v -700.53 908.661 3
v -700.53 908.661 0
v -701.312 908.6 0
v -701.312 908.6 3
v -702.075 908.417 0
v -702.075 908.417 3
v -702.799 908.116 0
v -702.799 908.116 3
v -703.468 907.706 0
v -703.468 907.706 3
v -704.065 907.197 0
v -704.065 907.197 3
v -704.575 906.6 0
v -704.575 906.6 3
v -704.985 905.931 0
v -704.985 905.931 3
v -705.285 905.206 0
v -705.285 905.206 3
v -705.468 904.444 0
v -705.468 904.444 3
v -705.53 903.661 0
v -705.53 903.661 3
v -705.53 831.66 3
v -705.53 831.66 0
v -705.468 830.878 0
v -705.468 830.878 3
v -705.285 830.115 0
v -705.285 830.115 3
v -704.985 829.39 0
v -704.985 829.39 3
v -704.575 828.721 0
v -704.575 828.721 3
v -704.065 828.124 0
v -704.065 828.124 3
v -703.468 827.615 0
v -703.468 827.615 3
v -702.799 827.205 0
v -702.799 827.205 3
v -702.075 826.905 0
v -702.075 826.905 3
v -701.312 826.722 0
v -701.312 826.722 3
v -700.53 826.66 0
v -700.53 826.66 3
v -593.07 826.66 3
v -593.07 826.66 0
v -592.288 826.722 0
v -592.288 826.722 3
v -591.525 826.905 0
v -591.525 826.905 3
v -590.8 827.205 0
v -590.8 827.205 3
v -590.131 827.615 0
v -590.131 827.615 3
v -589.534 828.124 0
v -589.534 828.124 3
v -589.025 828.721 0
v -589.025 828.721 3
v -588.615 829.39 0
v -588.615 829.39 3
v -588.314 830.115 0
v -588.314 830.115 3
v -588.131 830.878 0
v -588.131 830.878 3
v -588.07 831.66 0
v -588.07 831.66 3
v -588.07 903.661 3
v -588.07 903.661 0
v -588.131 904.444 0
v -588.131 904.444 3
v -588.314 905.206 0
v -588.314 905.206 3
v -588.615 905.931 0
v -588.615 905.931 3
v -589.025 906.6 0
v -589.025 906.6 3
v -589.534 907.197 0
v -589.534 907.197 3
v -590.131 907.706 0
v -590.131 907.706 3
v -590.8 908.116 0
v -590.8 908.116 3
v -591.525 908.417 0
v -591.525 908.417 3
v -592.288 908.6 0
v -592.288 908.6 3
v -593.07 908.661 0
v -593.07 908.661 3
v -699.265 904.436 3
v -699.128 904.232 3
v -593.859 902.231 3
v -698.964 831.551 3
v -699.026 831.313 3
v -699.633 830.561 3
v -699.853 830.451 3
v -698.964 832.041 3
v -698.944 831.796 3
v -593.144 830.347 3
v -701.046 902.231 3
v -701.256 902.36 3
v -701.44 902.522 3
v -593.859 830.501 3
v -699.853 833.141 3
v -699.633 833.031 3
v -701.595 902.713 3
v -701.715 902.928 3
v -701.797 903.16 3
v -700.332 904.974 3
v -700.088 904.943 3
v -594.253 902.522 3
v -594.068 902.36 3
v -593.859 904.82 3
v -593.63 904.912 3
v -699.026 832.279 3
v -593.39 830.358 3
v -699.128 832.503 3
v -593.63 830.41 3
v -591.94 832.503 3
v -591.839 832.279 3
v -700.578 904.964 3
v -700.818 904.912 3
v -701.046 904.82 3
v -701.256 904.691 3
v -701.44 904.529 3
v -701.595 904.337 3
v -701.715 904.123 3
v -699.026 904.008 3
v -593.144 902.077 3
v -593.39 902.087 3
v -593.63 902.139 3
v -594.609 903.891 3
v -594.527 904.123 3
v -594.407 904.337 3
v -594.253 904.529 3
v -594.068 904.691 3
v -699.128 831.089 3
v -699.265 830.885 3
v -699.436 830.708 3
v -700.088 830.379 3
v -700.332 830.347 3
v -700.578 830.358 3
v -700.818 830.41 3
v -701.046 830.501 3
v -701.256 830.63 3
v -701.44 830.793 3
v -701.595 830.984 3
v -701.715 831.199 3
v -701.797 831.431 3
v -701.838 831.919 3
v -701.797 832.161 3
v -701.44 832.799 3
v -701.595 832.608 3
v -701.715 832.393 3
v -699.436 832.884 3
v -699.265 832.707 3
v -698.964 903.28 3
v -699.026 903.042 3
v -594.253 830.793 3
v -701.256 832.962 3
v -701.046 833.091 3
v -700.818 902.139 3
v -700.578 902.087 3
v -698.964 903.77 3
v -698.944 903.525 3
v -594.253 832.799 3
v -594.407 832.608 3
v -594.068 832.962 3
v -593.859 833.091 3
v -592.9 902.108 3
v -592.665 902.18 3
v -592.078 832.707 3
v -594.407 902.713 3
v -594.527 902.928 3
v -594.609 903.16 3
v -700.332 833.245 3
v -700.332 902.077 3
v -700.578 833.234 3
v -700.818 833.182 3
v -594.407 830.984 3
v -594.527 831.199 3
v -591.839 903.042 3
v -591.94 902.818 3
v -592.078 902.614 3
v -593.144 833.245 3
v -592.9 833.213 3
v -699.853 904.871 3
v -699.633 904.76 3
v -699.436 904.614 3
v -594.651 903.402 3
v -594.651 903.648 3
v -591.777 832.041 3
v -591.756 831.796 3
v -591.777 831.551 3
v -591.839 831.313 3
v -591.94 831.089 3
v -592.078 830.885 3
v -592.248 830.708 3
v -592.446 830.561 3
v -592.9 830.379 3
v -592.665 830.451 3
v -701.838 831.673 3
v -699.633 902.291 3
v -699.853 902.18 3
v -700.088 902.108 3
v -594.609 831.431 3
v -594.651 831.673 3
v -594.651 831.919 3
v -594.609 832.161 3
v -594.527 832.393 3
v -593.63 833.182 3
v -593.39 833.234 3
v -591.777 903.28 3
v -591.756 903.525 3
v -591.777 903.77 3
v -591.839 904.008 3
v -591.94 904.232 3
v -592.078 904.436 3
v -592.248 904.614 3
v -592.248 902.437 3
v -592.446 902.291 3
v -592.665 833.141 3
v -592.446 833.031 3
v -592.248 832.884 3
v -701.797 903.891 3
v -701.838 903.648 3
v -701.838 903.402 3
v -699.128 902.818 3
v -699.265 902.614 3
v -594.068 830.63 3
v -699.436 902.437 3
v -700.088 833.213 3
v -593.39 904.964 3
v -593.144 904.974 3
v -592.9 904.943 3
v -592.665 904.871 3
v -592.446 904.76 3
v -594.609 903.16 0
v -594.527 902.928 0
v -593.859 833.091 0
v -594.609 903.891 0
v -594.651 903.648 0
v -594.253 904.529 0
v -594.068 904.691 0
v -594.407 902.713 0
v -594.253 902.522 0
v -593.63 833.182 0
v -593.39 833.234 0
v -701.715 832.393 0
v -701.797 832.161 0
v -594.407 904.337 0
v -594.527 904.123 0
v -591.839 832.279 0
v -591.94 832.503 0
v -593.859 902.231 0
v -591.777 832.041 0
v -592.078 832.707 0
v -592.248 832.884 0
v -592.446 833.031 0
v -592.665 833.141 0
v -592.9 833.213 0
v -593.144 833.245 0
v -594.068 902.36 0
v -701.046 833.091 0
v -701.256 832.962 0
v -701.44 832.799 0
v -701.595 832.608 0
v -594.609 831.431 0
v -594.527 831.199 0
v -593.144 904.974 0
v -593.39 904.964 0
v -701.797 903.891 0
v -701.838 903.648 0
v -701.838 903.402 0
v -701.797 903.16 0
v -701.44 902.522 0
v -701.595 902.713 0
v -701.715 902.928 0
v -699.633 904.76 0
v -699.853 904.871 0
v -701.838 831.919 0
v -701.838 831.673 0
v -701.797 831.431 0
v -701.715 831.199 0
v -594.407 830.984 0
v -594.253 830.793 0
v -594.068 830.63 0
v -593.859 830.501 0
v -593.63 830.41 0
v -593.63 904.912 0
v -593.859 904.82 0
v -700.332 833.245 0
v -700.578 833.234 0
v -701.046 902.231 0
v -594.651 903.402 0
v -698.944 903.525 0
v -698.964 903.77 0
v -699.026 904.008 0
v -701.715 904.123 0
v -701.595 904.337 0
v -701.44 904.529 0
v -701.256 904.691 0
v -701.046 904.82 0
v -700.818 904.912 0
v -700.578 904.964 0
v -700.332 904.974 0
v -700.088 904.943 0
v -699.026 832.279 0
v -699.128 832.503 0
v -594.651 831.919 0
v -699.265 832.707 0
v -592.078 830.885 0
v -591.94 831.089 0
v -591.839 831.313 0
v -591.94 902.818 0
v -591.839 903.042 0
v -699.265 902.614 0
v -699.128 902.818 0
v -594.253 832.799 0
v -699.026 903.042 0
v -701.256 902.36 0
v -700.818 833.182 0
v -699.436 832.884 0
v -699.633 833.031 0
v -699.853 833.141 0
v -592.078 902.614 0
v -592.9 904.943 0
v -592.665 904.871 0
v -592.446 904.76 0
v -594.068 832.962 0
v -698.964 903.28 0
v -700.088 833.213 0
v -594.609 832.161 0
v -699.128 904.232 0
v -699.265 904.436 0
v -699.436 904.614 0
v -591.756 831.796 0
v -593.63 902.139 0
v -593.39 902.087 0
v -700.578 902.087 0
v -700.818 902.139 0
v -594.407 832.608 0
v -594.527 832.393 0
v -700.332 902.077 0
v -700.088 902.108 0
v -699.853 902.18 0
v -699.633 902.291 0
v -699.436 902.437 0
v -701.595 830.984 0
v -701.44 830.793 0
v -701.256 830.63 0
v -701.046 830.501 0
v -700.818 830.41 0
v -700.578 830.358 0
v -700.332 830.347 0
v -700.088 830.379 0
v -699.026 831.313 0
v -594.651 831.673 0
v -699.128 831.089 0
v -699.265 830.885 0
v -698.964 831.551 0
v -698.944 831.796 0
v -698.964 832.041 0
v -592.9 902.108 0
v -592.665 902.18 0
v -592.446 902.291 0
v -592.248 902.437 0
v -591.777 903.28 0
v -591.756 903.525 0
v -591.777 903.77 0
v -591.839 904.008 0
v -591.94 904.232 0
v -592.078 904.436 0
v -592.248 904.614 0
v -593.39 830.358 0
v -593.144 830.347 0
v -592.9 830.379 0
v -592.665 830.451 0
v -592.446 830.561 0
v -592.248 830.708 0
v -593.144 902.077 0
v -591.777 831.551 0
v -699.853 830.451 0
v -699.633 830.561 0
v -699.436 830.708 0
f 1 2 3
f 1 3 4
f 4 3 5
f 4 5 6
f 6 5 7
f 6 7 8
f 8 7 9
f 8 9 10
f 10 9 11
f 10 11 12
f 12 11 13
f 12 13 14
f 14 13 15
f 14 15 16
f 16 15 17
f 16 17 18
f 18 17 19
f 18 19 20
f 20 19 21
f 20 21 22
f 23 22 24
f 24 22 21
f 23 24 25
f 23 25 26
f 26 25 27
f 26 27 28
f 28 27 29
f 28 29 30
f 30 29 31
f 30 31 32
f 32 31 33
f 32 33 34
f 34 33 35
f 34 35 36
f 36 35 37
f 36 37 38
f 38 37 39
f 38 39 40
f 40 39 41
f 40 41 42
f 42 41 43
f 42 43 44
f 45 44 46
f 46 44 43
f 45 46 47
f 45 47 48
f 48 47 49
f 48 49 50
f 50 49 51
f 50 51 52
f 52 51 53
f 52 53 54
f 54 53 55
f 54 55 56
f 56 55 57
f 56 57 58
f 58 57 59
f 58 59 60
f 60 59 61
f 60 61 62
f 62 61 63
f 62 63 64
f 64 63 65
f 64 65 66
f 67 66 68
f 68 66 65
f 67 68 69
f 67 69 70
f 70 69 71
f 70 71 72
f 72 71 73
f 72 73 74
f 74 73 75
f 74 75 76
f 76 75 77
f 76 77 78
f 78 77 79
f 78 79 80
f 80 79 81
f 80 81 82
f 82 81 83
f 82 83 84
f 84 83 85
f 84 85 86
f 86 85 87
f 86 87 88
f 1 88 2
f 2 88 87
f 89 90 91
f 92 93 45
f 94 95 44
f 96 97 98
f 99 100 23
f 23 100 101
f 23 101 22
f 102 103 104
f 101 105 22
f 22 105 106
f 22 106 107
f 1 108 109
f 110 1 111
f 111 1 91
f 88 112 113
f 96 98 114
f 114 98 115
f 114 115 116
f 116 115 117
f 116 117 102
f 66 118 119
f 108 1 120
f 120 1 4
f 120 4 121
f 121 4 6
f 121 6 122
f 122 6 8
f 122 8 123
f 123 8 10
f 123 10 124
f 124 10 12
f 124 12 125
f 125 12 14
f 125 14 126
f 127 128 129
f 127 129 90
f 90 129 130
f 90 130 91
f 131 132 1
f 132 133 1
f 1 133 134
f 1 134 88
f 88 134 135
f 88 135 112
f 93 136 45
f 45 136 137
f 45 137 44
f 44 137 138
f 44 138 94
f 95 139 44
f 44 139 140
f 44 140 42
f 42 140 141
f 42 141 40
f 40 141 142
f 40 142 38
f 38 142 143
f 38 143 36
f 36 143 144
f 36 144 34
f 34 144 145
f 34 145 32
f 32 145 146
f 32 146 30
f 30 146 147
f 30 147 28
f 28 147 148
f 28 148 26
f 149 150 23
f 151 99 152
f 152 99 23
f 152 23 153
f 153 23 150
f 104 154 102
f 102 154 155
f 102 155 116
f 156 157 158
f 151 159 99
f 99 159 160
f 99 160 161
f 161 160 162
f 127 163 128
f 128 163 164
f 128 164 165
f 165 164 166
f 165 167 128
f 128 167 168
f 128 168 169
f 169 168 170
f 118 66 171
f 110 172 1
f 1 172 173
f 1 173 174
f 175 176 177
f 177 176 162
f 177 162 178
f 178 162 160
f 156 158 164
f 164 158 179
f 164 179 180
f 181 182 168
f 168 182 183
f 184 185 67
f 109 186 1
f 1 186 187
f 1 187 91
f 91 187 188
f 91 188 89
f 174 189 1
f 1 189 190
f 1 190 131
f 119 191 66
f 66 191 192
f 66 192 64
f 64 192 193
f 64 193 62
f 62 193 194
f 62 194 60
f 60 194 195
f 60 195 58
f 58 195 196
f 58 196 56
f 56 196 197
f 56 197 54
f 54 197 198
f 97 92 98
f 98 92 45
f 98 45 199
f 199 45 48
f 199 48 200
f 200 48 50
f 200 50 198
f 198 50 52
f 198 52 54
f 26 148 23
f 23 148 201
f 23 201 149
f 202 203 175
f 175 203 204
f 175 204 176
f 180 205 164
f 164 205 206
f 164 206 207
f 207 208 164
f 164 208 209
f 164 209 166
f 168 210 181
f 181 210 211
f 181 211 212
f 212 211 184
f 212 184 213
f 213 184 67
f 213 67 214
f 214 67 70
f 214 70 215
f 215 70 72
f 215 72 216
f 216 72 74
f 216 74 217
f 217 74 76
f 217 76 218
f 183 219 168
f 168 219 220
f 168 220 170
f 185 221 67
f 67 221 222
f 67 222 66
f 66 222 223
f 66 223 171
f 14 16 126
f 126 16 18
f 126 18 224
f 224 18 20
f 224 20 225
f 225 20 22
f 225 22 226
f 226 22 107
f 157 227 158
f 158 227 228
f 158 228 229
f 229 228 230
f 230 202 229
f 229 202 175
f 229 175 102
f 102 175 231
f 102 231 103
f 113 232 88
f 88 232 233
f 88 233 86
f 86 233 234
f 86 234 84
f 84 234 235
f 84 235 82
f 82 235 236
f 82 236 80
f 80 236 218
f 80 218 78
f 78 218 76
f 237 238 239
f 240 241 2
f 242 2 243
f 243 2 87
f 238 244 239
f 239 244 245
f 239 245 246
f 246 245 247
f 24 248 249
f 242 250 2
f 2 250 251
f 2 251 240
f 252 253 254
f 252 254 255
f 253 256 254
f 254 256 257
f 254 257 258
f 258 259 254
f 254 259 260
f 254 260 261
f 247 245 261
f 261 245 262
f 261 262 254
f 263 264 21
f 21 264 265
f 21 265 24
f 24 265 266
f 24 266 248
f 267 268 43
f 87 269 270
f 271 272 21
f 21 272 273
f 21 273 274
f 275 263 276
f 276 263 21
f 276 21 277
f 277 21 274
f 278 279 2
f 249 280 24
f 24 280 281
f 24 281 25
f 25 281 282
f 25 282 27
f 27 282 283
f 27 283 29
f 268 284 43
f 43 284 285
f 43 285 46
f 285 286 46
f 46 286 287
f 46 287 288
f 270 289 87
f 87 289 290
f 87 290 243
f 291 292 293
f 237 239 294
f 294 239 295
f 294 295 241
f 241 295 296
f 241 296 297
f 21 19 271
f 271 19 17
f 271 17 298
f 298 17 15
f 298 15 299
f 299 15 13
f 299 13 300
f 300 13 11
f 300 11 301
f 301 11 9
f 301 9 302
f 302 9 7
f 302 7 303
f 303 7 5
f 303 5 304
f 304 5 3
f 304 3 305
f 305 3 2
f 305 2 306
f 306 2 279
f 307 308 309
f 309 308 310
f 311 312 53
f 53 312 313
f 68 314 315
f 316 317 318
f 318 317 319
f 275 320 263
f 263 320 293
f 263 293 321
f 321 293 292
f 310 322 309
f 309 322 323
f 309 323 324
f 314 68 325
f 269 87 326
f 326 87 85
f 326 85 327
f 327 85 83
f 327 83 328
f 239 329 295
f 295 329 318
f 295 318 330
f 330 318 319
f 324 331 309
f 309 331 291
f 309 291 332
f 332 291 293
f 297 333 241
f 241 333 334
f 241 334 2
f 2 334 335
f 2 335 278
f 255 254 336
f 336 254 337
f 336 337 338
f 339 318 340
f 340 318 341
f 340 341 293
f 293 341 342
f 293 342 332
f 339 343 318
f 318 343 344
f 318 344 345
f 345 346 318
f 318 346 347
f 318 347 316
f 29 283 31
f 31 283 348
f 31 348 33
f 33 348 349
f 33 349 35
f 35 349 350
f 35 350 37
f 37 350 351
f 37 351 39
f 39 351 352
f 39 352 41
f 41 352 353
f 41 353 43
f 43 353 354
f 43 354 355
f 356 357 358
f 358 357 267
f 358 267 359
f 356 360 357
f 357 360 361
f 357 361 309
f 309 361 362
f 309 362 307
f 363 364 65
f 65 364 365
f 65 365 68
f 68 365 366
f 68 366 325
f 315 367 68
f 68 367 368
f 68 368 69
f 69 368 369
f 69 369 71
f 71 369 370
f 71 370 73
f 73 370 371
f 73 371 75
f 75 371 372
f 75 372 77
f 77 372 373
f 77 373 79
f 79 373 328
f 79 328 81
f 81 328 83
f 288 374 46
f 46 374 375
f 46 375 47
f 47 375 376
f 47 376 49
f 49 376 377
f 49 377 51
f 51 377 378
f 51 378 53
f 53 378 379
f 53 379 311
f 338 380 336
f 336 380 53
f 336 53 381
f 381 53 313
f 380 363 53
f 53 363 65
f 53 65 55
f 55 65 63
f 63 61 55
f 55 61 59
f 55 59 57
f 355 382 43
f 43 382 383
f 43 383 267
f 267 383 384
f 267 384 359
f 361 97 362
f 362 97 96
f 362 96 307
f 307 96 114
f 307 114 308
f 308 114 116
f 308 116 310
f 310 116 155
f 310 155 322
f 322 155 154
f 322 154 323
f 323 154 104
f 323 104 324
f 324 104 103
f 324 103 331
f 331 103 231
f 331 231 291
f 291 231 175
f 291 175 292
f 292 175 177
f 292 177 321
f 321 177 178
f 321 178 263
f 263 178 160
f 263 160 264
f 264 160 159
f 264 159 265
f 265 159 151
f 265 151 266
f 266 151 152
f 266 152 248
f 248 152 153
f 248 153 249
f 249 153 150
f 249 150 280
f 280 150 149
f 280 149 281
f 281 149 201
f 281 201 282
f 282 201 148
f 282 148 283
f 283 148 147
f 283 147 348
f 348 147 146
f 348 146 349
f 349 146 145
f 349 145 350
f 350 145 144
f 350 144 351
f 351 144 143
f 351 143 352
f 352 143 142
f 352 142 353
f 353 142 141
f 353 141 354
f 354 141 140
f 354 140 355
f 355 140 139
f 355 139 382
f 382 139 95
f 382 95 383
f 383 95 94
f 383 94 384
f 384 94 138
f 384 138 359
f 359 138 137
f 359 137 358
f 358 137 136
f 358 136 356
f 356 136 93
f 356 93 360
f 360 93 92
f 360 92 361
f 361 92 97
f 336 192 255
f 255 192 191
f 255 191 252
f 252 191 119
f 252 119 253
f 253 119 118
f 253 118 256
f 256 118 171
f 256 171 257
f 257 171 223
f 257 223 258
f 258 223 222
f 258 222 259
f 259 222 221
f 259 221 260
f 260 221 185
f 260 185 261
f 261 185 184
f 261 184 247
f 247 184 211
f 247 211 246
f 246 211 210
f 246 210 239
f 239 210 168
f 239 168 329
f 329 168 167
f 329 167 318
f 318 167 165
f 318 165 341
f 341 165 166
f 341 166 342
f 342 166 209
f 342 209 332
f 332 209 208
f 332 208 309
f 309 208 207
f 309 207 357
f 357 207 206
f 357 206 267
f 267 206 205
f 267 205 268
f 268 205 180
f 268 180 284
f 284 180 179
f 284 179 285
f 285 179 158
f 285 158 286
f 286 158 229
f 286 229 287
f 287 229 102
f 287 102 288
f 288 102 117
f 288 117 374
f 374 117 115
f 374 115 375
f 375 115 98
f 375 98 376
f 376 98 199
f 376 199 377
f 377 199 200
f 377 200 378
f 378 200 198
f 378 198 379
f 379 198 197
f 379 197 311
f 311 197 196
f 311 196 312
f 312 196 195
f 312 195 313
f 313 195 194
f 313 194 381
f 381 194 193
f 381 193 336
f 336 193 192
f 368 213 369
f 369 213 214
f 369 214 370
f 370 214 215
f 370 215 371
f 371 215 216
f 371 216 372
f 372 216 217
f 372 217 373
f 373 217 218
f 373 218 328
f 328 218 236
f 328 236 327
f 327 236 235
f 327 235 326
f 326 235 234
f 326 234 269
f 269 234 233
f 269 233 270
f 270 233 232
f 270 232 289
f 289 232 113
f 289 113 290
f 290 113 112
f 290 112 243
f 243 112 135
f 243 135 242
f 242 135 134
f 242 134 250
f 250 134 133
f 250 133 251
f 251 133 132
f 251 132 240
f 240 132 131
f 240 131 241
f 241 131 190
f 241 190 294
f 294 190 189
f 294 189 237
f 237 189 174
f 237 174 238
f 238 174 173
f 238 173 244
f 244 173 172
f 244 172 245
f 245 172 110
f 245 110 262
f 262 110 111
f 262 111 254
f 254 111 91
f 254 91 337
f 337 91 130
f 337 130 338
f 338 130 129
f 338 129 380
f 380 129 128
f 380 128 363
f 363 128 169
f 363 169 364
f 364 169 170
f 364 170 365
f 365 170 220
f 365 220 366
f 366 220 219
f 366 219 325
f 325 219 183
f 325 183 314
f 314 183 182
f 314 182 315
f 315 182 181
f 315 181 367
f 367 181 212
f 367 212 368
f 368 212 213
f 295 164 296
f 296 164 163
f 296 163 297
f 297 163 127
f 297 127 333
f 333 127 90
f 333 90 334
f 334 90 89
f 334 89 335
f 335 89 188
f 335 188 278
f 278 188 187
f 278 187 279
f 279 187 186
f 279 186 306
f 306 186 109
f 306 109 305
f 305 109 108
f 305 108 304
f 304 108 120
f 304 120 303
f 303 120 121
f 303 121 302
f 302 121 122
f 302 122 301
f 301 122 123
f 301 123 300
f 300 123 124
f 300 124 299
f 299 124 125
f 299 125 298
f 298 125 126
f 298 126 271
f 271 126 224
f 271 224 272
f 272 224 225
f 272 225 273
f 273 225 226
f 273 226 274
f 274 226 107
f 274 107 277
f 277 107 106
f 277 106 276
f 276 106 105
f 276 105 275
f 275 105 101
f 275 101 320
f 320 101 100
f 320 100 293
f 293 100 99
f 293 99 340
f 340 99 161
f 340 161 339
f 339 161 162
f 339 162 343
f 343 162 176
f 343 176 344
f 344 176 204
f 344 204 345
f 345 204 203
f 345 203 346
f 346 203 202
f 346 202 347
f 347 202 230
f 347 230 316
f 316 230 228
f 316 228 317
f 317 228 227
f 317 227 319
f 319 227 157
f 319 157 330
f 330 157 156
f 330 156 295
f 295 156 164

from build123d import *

# Parameters (mm, degrees)
BOSS_EXTRUDE1_DEPTH    = 3
M2_5_CLEARANCE_HOLE1_D = 2.9


with BuildPart() as part:
    # Sketch1 → Boss-Extrude1 (new body)
    with BuildSketch(Plane.XY):
        with BuildLine():
            Line((-700.529573216, 908.661404475), (-593.069773216, 908.661404475))
            ThreePointArc((-593.069773216, 908.661404475), (-589.53423931, 907.19693838), (-588.069773216, 903.661404475))
            Line((-588.069773216, 903.661404475), (-588.069773216, 831.660004475))
            ThreePointArc((-588.069773216, 831.660004475), (-589.53423931, 828.124470569), (-593.069773216, 826.660004475))
            Line((-593.069773216, 826.660004475), (-700.529573216, 826.660004475))
            ThreePointArc((-700.529573216, 826.660004475), (-704.065107121, 828.124470569), (-705.529573216, 831.660004475))
            Line((-705.529573216, 831.660004475), (-705.529573216, 903.661404475))
            ThreePointArc((-705.529573216, 903.661404475), (-704.065107121, 907.19693838), (-700.529573216, 908.661404475))
        make_face()
    extrude(amount=BOSS_EXTRUDE1_DEPTH)

    # M2.5 Clearance Hole1 (through all)
    with Locations(Plane.XY.offset(3)):
        with Locations((-700.393534246, 903.525365505), (-593.205812185, 903.525365505), (-593.205812185, 831.796043444), (-700.393534246, 831.796043444)):
            Hole(M2_5_CLEARANCE_HOLE1_D / 2)


solid = part.part
